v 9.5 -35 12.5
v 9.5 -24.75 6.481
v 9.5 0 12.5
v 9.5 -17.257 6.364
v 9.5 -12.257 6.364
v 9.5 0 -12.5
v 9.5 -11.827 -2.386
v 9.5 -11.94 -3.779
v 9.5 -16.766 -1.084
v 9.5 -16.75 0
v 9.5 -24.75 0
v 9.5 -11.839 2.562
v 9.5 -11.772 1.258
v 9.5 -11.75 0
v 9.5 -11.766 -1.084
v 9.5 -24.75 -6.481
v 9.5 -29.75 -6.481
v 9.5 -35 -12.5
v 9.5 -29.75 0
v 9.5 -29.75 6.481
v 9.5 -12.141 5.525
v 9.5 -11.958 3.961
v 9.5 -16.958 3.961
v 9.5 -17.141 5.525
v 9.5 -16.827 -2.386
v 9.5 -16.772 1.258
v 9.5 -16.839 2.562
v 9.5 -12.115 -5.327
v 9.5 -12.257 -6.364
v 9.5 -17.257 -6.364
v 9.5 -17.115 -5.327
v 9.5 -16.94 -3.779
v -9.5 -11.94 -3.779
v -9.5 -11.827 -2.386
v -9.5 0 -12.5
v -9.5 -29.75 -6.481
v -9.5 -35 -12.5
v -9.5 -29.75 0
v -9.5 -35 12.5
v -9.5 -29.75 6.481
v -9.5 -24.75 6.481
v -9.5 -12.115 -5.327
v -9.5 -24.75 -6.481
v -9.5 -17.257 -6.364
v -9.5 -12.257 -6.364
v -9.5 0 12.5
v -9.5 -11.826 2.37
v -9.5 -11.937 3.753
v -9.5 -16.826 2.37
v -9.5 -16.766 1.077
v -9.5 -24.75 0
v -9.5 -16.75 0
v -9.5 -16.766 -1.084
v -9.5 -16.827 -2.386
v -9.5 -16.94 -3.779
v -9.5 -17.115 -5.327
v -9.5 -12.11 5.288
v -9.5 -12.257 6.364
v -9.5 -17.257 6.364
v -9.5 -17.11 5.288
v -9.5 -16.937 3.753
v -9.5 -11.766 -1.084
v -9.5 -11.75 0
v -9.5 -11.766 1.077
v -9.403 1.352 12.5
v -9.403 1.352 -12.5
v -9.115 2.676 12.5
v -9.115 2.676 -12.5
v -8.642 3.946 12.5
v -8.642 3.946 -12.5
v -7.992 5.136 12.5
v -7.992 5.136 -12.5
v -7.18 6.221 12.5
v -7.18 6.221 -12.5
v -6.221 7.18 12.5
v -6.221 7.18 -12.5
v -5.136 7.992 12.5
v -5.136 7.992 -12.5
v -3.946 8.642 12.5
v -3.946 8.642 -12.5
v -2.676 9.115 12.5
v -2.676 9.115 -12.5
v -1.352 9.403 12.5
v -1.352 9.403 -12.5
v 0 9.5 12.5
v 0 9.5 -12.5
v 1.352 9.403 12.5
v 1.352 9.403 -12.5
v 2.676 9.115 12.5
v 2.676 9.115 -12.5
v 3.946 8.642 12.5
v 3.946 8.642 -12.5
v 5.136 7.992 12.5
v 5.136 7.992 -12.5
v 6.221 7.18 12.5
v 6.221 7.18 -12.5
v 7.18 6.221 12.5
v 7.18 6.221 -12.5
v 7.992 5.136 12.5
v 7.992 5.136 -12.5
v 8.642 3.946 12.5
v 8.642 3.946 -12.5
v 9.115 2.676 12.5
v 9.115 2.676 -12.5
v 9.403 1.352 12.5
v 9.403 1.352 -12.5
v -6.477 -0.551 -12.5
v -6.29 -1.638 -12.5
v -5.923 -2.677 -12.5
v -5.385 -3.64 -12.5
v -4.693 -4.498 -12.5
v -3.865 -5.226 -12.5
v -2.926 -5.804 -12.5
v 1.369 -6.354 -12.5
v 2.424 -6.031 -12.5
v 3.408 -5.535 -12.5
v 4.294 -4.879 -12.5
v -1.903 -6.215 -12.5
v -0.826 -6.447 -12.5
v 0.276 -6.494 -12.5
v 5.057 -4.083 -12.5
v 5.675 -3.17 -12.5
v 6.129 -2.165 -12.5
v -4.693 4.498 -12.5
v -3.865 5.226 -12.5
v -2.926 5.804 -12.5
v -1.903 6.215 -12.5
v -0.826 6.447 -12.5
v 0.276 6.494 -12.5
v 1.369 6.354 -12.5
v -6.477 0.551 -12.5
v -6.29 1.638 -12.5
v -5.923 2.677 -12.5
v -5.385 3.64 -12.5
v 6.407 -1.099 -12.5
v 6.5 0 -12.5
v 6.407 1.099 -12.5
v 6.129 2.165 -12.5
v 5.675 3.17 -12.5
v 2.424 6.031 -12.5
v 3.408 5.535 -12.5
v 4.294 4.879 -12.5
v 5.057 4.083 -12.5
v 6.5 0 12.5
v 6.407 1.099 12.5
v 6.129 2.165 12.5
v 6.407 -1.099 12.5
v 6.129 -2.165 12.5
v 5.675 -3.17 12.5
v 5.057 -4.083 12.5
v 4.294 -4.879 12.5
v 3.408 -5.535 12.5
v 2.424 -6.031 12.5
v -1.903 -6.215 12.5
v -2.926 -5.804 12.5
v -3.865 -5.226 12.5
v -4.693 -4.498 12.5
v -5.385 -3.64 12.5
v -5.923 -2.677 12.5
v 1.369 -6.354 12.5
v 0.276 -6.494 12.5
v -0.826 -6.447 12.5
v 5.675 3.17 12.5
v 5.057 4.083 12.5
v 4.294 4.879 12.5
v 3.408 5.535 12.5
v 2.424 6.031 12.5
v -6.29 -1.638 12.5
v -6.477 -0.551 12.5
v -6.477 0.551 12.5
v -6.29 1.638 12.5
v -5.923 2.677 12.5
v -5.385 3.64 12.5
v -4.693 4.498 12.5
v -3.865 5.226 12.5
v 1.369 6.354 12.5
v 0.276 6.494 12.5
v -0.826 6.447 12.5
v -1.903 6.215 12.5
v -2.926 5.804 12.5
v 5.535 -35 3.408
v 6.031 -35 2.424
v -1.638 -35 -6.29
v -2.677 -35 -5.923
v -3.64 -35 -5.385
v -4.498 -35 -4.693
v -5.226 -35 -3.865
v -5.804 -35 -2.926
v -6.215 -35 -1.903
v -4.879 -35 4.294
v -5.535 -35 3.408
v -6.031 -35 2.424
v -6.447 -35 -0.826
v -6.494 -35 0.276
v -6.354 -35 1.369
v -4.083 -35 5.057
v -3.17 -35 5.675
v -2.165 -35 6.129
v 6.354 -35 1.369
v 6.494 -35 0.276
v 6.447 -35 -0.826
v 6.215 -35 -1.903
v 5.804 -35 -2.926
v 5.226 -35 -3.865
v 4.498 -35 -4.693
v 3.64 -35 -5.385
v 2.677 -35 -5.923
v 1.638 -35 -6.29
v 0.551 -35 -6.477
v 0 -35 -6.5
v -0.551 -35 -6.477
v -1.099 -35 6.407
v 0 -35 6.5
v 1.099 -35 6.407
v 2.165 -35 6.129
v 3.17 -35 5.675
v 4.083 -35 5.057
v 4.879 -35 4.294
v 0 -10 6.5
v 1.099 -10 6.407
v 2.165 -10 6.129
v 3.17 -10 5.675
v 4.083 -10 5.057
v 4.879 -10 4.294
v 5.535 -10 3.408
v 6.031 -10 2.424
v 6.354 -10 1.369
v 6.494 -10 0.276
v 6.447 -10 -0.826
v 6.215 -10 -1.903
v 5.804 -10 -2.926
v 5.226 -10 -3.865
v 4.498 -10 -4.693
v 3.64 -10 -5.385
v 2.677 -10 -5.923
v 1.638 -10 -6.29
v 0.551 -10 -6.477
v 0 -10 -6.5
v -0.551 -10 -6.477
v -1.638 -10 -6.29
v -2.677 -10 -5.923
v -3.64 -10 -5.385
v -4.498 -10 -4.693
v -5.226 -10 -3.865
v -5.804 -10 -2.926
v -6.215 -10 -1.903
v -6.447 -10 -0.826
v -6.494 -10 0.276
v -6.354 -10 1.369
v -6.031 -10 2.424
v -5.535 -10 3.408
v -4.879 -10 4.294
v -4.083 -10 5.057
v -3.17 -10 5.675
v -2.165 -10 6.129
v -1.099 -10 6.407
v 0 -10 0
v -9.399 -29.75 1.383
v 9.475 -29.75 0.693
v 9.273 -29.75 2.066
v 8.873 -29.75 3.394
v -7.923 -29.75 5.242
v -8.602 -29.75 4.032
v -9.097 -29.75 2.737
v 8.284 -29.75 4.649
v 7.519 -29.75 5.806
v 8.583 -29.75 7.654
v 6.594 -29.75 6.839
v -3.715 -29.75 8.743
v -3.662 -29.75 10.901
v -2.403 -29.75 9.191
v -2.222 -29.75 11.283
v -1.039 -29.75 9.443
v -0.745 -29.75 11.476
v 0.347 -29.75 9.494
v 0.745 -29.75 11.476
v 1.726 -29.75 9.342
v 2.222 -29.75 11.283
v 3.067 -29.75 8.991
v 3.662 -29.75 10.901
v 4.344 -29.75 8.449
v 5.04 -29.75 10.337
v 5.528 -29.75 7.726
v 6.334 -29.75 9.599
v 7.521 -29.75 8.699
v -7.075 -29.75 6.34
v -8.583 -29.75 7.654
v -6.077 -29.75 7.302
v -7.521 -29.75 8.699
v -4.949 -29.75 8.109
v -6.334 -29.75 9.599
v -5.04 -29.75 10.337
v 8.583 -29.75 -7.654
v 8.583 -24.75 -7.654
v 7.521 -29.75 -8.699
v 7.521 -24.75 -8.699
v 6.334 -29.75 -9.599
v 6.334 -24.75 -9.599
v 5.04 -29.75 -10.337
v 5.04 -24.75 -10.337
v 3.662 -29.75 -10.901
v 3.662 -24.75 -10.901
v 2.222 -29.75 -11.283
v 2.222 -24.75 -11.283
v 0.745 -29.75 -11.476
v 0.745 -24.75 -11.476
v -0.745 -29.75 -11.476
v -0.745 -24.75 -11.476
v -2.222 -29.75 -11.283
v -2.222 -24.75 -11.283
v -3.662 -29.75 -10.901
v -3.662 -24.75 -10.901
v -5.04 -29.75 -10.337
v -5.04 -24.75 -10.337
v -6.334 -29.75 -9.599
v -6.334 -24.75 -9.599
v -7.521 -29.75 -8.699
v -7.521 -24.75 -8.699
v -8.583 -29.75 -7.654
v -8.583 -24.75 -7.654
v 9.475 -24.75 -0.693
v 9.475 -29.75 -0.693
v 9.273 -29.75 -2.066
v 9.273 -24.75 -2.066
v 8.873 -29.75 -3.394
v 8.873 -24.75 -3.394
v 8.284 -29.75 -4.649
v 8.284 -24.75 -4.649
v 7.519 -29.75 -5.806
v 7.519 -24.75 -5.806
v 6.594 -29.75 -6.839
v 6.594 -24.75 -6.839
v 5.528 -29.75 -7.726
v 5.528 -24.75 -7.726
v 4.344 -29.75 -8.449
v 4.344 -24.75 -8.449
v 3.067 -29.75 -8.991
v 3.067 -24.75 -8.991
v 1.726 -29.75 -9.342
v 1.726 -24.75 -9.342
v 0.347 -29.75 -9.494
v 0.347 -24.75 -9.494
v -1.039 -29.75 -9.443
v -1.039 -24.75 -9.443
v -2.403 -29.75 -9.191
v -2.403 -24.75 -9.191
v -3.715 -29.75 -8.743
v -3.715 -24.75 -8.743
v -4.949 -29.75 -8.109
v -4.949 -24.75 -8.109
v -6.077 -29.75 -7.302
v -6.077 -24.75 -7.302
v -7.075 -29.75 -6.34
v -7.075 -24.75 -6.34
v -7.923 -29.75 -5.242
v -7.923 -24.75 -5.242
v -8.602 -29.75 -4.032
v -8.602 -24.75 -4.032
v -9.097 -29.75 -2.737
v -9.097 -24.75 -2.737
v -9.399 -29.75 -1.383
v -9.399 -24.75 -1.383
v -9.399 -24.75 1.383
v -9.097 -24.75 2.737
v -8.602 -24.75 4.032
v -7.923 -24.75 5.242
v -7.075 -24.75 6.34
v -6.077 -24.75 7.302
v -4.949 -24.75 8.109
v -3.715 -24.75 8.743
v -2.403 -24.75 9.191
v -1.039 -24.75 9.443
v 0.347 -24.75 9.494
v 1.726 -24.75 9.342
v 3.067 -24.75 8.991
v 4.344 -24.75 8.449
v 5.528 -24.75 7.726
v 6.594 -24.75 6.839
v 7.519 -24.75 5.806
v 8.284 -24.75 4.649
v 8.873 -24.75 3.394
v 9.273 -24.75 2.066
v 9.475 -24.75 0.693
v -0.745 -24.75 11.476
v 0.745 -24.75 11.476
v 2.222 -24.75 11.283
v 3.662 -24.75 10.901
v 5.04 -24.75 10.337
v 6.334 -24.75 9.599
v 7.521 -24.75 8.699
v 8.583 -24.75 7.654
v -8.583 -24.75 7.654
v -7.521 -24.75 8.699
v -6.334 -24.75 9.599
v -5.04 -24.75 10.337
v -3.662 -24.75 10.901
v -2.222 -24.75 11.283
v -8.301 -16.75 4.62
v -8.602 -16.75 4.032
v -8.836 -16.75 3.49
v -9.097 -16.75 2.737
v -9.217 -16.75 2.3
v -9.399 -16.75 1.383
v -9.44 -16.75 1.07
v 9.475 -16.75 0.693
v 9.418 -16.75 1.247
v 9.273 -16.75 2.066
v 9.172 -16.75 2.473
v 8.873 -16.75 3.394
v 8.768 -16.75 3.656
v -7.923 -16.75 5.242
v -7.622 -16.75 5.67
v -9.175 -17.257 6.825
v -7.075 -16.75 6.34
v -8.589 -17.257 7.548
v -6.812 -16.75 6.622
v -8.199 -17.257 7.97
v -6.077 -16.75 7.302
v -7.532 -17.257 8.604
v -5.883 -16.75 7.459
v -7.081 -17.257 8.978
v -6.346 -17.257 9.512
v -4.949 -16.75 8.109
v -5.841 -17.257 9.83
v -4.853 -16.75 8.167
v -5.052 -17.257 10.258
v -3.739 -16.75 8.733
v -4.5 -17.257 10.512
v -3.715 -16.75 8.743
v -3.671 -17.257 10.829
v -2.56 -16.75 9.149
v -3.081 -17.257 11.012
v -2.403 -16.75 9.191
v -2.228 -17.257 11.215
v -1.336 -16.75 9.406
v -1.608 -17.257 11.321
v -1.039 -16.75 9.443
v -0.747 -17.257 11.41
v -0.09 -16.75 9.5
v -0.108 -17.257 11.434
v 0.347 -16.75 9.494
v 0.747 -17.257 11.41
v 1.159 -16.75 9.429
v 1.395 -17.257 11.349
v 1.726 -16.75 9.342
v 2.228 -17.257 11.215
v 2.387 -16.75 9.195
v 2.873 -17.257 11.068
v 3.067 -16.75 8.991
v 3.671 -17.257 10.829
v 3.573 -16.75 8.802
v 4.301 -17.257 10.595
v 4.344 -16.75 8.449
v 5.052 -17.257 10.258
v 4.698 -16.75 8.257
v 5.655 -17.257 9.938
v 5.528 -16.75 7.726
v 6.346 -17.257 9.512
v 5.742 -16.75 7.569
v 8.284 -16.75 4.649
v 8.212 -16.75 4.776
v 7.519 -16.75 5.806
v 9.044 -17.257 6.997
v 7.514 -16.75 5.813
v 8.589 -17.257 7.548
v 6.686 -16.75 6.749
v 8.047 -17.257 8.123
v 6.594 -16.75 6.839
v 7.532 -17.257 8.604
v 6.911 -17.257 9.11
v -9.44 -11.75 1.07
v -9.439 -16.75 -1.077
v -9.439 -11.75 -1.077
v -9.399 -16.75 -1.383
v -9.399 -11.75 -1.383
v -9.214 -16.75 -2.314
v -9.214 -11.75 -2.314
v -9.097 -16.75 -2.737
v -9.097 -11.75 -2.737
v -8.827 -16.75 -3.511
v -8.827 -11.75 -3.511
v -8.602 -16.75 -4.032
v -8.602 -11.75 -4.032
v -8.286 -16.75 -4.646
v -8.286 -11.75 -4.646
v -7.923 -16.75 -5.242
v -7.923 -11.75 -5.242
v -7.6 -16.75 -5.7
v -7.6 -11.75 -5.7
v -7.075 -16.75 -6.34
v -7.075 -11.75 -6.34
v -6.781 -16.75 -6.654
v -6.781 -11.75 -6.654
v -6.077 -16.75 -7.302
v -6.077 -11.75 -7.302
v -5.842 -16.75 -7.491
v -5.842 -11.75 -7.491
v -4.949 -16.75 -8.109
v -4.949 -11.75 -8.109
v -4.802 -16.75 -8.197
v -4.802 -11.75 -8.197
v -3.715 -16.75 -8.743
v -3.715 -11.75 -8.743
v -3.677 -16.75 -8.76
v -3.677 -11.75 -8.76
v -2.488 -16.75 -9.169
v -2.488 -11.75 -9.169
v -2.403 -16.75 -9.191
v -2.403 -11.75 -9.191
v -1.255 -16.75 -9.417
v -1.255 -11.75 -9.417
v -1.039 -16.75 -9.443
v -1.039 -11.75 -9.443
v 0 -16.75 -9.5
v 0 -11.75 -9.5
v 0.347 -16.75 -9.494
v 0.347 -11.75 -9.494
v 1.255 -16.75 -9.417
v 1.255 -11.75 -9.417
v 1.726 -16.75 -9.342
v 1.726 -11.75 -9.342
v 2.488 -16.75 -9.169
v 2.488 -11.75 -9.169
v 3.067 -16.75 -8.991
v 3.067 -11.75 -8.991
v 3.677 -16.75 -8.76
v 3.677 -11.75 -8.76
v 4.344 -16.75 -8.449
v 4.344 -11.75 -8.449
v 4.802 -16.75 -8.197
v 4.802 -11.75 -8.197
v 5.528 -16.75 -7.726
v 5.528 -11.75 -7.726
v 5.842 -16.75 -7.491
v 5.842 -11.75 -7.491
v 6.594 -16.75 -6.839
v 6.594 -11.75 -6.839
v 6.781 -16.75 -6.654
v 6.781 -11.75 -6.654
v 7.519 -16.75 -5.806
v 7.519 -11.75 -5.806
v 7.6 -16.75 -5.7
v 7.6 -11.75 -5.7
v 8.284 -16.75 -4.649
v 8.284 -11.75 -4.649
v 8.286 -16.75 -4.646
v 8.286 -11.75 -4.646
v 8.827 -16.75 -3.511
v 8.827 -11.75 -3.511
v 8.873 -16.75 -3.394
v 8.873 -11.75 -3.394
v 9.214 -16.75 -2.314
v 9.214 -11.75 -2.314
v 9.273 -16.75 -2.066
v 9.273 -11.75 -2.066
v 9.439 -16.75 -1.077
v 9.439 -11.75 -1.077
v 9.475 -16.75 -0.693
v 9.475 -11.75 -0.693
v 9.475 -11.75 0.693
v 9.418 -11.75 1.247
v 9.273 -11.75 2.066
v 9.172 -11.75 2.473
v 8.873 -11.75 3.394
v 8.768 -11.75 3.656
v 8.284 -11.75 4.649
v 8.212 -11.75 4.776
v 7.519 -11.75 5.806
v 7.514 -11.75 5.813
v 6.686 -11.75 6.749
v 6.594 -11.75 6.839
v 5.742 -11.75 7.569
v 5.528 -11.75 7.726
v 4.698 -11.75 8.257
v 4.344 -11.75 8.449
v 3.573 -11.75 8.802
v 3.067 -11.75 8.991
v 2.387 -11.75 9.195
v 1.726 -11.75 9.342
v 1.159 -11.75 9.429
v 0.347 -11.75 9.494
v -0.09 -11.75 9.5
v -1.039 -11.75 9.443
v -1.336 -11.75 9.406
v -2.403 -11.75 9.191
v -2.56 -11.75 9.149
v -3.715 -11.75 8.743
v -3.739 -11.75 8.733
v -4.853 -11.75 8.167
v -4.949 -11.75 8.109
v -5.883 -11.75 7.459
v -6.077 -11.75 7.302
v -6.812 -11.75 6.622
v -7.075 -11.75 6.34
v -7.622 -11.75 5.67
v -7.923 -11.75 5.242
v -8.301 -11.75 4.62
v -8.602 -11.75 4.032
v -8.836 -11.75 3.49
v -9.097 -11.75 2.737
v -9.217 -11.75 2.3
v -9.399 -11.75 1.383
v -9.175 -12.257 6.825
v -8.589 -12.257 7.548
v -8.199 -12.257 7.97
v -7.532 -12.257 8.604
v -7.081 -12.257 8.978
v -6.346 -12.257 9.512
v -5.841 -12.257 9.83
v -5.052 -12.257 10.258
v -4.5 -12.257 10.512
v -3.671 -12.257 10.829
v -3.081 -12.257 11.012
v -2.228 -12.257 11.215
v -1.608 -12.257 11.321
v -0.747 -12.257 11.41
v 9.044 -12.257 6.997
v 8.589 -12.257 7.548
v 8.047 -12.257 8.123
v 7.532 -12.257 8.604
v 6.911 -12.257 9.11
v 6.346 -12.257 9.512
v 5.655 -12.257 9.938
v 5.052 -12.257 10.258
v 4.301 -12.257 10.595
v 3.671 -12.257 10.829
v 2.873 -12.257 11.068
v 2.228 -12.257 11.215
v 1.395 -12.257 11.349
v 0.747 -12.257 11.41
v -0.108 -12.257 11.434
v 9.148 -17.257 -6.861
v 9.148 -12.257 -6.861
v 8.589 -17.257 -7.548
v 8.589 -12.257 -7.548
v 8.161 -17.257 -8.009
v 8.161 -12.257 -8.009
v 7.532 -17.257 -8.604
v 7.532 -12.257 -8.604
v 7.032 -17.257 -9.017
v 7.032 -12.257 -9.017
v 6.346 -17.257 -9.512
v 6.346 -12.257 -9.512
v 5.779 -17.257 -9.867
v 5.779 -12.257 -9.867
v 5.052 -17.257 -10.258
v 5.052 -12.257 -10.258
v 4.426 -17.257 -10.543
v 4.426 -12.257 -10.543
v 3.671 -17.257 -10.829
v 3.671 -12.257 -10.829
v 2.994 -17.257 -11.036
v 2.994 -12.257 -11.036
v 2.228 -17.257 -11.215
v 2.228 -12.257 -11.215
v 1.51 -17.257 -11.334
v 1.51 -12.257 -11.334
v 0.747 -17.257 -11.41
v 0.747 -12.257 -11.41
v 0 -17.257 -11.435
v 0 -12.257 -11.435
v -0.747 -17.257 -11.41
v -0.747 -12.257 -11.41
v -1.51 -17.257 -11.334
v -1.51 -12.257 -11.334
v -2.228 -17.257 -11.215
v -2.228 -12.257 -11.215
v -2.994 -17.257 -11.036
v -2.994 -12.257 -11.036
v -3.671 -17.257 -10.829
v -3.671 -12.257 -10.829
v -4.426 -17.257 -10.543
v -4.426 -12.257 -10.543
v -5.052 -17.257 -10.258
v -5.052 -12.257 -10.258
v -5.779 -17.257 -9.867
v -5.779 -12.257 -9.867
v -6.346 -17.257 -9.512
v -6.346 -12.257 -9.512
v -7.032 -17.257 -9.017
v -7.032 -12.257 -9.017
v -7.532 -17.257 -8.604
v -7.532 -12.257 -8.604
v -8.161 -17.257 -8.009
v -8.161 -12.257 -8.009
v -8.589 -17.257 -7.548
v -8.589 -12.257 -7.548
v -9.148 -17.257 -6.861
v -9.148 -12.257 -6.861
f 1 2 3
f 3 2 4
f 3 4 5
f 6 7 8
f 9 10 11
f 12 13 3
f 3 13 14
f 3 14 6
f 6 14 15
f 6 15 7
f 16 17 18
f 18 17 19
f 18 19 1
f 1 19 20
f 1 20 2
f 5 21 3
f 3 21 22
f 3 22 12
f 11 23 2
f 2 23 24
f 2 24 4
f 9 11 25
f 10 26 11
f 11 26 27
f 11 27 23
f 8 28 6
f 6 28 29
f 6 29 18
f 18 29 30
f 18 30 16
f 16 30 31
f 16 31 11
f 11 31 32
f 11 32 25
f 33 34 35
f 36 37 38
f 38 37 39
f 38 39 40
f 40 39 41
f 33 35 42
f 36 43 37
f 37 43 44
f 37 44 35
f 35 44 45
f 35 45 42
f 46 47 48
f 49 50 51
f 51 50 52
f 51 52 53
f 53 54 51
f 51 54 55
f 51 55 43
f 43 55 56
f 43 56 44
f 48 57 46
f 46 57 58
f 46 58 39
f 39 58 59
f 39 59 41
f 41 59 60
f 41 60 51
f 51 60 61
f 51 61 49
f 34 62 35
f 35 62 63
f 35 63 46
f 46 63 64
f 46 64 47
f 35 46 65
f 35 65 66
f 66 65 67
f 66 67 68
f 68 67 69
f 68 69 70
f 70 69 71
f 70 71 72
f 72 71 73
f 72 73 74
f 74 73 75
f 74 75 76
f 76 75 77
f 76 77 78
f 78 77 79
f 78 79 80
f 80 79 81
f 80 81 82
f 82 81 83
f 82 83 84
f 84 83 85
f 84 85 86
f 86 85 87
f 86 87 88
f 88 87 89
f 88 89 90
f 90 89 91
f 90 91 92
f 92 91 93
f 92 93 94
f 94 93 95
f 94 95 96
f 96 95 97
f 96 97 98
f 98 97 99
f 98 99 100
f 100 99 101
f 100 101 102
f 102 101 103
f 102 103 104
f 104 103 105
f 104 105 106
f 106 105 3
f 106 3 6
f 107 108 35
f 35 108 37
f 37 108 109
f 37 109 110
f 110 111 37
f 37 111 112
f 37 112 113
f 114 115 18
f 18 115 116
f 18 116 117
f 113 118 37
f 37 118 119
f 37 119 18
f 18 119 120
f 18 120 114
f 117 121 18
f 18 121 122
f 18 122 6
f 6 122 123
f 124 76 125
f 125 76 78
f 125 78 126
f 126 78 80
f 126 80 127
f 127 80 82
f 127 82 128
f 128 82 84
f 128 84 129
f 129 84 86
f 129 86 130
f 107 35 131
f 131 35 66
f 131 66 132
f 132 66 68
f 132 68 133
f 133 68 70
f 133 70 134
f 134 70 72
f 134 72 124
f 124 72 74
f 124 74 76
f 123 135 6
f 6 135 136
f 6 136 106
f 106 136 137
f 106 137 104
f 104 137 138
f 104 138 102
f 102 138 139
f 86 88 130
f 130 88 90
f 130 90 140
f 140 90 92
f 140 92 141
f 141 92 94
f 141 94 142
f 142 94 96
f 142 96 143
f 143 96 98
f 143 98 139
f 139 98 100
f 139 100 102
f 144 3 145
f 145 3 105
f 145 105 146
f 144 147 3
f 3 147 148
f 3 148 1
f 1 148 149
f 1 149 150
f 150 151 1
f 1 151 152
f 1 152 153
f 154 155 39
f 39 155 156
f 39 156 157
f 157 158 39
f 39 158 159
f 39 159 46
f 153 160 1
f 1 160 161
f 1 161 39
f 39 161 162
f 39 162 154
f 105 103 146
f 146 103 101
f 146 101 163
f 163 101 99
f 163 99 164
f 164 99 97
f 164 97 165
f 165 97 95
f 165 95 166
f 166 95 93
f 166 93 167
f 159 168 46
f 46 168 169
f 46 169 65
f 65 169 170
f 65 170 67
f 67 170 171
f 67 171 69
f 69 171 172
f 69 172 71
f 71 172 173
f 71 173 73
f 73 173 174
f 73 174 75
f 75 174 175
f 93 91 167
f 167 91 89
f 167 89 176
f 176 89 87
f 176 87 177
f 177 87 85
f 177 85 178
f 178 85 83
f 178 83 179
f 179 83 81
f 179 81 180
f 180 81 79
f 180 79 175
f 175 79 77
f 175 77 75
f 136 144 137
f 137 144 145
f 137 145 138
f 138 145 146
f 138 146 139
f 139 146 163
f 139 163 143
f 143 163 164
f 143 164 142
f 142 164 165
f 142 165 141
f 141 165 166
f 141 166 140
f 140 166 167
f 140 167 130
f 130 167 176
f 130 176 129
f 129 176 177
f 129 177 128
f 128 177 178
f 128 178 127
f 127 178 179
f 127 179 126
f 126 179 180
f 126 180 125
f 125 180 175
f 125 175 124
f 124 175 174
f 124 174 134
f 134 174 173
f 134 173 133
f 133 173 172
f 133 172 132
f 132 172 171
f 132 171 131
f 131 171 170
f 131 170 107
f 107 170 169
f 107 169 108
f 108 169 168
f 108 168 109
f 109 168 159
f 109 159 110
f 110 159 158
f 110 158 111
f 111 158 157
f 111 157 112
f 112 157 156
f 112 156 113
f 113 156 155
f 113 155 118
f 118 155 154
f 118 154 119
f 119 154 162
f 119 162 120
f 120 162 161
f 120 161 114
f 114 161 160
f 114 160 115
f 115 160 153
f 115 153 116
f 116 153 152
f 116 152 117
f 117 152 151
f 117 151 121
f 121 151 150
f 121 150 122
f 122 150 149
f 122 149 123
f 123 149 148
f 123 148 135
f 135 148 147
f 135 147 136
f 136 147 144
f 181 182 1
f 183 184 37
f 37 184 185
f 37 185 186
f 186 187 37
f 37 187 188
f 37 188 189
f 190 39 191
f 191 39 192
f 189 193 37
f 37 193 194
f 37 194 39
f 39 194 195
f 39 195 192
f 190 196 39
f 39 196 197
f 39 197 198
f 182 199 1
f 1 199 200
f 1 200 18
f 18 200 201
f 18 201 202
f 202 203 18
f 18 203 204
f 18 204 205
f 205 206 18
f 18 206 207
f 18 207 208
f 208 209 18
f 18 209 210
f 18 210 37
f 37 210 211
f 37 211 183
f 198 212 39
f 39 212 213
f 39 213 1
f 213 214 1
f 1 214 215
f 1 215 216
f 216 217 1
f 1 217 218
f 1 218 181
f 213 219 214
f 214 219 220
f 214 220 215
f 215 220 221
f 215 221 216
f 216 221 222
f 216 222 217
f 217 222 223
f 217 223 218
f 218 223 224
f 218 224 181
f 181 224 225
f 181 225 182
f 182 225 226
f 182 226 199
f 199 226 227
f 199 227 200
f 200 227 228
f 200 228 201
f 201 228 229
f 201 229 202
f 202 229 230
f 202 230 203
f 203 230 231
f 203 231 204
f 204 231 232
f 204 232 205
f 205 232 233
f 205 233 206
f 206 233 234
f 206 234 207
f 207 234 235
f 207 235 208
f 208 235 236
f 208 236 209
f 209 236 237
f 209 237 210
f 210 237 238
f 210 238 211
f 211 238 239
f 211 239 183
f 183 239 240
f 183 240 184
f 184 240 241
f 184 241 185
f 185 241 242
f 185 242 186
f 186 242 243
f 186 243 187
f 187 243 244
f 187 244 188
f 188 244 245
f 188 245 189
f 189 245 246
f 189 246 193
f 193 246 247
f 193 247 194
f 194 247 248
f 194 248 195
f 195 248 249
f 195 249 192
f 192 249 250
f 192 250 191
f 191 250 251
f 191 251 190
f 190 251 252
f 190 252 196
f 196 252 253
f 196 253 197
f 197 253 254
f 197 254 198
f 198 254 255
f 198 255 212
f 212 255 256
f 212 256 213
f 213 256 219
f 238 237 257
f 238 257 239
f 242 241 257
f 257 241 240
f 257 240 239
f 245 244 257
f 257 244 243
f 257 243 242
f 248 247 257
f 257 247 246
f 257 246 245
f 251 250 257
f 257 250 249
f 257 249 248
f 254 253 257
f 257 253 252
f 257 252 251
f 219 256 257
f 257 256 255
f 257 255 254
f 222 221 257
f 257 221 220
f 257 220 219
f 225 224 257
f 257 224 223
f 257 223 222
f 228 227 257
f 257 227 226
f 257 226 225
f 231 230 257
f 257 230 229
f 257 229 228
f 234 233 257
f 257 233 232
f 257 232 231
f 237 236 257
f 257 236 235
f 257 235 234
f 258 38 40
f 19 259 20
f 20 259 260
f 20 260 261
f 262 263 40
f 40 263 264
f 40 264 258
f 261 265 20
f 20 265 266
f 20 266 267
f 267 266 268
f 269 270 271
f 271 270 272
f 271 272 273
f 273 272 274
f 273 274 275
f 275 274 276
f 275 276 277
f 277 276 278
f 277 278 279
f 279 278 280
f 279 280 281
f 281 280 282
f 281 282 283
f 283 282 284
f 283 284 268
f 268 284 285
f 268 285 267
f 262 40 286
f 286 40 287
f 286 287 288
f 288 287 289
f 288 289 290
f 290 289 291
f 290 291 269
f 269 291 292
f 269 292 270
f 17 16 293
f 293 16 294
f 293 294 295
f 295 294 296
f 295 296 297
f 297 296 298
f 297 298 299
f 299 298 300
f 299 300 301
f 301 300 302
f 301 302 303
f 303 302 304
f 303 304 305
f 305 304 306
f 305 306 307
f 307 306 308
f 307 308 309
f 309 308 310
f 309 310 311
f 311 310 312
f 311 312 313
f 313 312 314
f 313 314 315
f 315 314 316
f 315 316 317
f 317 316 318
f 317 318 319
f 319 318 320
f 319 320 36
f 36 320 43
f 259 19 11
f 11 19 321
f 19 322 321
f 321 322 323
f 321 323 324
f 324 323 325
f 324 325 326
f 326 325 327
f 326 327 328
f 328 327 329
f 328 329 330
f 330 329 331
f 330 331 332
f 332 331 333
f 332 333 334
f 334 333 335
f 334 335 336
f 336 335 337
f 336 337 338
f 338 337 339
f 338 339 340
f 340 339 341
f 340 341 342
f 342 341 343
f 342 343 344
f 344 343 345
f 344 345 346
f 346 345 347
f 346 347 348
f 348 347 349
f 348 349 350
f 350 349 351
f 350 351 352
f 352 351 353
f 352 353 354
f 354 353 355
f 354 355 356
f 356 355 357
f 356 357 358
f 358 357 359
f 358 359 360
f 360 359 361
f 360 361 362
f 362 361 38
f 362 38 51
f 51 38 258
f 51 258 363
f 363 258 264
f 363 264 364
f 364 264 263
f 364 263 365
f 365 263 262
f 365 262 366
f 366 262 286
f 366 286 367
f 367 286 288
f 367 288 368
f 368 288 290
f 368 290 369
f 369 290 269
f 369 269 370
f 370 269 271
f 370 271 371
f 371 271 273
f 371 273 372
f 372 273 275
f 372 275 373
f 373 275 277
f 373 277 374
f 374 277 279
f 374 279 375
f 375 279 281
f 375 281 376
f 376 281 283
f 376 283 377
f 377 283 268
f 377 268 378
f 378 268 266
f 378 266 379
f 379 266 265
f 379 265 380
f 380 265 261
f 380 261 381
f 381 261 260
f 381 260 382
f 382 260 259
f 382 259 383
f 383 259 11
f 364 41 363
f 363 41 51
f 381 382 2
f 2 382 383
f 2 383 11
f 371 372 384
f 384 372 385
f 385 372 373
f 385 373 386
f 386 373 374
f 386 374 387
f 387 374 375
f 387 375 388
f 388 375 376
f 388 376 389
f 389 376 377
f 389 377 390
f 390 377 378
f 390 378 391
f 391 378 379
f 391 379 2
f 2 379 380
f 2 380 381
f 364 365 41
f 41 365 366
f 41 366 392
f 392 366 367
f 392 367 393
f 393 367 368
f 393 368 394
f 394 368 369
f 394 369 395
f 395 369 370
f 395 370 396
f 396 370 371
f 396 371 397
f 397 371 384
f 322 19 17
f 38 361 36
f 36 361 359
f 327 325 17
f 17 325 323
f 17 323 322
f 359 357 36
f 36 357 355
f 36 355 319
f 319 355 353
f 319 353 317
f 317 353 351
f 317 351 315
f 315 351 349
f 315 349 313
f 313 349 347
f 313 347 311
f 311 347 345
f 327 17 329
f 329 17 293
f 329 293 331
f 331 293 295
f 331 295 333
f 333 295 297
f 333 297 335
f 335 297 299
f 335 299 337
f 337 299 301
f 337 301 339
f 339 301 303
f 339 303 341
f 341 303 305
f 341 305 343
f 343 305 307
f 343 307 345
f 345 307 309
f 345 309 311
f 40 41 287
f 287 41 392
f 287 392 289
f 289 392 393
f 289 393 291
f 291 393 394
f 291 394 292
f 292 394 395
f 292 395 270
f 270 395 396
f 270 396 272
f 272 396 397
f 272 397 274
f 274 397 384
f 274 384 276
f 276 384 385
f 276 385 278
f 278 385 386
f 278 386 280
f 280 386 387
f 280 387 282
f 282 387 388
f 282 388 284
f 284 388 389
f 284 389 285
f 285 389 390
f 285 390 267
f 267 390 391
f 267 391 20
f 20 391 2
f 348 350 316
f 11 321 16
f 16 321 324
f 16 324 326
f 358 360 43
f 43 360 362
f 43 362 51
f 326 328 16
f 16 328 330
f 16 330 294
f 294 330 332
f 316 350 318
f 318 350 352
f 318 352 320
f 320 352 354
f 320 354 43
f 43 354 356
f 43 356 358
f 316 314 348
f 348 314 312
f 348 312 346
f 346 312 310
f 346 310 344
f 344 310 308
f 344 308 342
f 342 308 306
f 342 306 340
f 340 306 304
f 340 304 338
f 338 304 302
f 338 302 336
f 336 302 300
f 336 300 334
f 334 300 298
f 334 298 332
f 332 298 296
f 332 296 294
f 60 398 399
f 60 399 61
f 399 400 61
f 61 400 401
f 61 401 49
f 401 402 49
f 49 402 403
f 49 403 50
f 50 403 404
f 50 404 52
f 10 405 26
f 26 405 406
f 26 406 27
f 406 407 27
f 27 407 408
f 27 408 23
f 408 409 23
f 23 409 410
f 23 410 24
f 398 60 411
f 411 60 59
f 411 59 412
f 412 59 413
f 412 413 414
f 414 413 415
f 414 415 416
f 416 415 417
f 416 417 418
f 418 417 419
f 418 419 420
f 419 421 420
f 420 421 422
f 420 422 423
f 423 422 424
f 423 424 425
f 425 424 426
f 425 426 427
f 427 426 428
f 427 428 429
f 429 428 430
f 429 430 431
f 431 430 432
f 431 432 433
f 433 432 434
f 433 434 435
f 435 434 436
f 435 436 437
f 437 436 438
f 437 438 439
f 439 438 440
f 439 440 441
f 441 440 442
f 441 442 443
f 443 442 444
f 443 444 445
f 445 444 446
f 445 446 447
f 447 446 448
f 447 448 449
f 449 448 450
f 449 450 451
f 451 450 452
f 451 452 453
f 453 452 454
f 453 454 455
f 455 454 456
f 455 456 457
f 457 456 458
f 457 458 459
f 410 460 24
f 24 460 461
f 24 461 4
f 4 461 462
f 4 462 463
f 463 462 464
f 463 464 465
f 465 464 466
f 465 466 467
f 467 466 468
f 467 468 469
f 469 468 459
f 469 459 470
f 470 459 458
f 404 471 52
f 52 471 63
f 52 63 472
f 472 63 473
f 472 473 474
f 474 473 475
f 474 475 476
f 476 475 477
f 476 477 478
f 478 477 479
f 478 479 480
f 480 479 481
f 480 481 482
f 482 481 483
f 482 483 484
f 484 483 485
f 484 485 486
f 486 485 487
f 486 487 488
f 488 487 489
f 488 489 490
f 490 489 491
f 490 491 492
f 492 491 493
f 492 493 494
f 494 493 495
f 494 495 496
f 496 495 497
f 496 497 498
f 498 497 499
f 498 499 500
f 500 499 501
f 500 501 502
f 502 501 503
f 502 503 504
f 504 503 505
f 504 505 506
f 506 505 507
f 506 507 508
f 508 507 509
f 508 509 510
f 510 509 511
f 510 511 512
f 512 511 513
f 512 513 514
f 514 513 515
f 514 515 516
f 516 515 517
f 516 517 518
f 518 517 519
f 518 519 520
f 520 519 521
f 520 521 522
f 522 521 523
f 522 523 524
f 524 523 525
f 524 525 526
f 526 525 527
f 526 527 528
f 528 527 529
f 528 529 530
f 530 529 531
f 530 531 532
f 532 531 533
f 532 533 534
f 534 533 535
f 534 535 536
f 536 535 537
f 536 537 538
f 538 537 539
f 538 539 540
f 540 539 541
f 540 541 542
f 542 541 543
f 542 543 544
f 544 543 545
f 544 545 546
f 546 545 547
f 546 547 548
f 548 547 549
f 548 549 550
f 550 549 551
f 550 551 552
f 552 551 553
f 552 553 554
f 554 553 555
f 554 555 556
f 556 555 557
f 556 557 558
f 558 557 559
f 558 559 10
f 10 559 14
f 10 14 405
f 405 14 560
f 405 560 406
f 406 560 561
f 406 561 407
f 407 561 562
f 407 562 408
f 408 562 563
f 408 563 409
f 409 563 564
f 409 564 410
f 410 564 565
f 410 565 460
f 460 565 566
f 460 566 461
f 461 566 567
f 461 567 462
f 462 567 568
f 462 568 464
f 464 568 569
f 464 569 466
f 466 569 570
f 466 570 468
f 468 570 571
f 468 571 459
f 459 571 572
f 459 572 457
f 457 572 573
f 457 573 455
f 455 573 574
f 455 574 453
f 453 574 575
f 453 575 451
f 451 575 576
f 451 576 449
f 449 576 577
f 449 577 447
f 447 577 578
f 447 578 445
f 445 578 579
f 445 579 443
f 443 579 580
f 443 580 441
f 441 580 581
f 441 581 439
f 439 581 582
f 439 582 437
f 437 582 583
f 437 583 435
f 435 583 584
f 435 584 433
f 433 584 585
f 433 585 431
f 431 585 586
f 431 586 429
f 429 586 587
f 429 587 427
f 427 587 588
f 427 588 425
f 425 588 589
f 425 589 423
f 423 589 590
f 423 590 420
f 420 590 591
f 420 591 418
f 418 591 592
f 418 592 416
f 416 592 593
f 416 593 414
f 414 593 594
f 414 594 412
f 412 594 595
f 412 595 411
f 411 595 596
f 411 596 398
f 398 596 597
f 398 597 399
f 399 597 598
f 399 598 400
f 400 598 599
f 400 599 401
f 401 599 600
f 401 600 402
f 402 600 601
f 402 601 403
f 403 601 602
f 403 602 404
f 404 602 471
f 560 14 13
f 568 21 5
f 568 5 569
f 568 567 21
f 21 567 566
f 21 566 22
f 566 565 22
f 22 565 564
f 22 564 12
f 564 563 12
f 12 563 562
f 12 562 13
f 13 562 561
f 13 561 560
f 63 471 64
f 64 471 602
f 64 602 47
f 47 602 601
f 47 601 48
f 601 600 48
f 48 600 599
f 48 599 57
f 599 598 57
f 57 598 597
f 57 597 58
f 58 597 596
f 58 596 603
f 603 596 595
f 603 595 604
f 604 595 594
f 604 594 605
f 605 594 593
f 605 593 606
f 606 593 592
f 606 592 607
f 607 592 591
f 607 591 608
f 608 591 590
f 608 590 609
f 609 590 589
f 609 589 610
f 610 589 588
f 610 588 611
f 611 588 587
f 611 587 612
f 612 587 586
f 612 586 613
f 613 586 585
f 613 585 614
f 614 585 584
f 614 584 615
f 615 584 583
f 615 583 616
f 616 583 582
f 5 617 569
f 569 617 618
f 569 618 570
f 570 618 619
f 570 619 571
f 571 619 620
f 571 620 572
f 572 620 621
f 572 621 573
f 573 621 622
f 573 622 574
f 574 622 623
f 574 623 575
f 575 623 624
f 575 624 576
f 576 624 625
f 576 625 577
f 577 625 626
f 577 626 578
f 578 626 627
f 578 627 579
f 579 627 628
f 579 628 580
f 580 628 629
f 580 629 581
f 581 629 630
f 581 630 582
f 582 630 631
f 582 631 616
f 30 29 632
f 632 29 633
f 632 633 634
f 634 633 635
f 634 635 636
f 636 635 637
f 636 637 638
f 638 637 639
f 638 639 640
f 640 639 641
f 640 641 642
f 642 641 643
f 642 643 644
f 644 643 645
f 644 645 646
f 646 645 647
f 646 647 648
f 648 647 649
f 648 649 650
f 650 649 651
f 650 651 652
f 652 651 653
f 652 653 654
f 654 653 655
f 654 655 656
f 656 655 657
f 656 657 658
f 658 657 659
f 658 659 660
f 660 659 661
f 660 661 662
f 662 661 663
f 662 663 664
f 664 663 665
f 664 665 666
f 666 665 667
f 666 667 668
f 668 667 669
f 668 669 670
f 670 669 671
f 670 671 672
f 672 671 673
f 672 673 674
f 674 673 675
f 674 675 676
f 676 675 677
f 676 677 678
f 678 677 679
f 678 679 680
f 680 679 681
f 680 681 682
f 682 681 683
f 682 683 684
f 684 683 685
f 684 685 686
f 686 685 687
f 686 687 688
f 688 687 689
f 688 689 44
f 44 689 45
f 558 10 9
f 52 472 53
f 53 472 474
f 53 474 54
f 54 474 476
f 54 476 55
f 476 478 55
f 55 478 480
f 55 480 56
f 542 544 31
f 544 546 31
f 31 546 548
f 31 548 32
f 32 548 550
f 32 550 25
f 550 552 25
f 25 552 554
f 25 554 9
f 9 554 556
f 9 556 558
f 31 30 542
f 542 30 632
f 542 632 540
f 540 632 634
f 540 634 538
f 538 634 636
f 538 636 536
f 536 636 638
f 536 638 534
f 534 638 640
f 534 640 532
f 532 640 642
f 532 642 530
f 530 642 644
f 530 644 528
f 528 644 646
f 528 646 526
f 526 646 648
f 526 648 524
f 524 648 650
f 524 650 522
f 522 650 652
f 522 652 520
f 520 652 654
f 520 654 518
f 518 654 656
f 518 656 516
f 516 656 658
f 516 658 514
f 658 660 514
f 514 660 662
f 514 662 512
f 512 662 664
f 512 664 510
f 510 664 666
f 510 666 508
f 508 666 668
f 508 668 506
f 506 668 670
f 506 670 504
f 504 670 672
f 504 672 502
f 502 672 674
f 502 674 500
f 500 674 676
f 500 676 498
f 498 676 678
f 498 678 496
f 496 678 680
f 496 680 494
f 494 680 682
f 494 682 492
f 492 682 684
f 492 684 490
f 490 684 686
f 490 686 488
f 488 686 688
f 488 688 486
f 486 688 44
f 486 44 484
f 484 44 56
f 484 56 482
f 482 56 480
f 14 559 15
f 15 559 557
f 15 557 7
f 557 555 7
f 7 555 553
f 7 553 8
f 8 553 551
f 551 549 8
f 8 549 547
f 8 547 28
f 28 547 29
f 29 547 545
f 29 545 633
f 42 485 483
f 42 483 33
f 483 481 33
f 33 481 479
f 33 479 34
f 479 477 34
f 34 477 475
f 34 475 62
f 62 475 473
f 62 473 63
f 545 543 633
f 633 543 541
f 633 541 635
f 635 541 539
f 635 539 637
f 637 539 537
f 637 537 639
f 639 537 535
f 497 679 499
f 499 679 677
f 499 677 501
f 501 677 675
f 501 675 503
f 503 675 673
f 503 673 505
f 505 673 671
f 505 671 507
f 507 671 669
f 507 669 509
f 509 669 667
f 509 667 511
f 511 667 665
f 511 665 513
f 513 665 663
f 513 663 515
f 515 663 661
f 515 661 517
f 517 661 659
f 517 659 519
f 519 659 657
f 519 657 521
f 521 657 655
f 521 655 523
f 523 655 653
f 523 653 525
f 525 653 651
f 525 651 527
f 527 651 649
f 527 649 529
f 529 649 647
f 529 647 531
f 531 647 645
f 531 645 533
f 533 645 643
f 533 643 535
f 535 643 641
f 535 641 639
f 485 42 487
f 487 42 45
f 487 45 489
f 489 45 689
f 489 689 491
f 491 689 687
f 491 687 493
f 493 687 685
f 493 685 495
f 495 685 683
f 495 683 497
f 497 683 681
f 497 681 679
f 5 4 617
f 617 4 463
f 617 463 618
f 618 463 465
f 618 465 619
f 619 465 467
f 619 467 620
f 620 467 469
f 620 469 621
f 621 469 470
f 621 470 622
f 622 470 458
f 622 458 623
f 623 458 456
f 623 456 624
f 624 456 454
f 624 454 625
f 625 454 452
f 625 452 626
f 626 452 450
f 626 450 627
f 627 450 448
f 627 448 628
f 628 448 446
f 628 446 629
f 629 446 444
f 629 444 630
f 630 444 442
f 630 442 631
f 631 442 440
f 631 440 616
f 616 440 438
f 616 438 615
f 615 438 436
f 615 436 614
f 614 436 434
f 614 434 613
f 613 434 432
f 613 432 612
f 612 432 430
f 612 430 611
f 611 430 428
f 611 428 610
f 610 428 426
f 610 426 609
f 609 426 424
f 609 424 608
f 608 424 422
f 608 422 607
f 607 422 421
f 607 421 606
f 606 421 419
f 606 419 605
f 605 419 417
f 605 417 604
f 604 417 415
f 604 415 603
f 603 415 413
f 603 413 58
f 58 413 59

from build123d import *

# Parameters (mm, degrees)
CROQUIS1_R              = 6.5
SALIENTE_EXTRUIR1_DEPTH = 12.5
CROQUIS3_W              = 19
CROQUIS3_H              = 25
CROQUIS3_R              = 6.5
SALIENTE_EXTRUIR2_DEPTH = 25
CROQUIS8_W              = 2
CROQUIS8_H              = 5


with BuildPart() as part:
    # Croquis1 → Saliente-Extruir1 (new body, symmetric)
    with BuildSketch(Plane.XY):
        with BuildLine():
            Line((-9.5, -10), (9.5, -10))
            Line((9.5, -10), (9.5, 0))
            ThreePointArc((9.5, 0), (0, 9.5), (-9.5, 0))
            Line((-9.5, 0), (-9.5, -10))
        make_face()
        Circle(CROQUIS1_R, mode=Mode.SUBTRACT)
    extrude(amount=SALIENTE_EXTRUIR1_DEPTH, both=True)

    # Croquis3 → Saliente-Extruir2 (add)
    with BuildSketch(Plane(origin=(0, -10, 0), x_dir=(-1, 0, 0), z_dir=(0, -1, 0))):
        Rectangle(CROQUIS3_W, CROQUIS3_H)
        Circle(CROQUIS3_R, mode=Mode.SUBTRACT)
    extrude(amount=SALIENTE_EXTRUIR2_DEPTH)

    # Croquis8 → Cortar-Revolución1 (revolve, cut)
    with BuildSketch(Plane.XY):
        Polygon((-11.434596491, -17.257283371), (-11.434596491, -12.257283371), (-9.5, -11.75), (-9.5, -16.75), align=None)
        with Locations((-10.5, -27.25)):
            Rectangle(CROQUIS8_W, CROQUIS8_H)
    revolve(axis=Axis((0, -6.5, 0), (0, -1, 0)), mode=Mode.SUBTRACT)


solid = part.part
